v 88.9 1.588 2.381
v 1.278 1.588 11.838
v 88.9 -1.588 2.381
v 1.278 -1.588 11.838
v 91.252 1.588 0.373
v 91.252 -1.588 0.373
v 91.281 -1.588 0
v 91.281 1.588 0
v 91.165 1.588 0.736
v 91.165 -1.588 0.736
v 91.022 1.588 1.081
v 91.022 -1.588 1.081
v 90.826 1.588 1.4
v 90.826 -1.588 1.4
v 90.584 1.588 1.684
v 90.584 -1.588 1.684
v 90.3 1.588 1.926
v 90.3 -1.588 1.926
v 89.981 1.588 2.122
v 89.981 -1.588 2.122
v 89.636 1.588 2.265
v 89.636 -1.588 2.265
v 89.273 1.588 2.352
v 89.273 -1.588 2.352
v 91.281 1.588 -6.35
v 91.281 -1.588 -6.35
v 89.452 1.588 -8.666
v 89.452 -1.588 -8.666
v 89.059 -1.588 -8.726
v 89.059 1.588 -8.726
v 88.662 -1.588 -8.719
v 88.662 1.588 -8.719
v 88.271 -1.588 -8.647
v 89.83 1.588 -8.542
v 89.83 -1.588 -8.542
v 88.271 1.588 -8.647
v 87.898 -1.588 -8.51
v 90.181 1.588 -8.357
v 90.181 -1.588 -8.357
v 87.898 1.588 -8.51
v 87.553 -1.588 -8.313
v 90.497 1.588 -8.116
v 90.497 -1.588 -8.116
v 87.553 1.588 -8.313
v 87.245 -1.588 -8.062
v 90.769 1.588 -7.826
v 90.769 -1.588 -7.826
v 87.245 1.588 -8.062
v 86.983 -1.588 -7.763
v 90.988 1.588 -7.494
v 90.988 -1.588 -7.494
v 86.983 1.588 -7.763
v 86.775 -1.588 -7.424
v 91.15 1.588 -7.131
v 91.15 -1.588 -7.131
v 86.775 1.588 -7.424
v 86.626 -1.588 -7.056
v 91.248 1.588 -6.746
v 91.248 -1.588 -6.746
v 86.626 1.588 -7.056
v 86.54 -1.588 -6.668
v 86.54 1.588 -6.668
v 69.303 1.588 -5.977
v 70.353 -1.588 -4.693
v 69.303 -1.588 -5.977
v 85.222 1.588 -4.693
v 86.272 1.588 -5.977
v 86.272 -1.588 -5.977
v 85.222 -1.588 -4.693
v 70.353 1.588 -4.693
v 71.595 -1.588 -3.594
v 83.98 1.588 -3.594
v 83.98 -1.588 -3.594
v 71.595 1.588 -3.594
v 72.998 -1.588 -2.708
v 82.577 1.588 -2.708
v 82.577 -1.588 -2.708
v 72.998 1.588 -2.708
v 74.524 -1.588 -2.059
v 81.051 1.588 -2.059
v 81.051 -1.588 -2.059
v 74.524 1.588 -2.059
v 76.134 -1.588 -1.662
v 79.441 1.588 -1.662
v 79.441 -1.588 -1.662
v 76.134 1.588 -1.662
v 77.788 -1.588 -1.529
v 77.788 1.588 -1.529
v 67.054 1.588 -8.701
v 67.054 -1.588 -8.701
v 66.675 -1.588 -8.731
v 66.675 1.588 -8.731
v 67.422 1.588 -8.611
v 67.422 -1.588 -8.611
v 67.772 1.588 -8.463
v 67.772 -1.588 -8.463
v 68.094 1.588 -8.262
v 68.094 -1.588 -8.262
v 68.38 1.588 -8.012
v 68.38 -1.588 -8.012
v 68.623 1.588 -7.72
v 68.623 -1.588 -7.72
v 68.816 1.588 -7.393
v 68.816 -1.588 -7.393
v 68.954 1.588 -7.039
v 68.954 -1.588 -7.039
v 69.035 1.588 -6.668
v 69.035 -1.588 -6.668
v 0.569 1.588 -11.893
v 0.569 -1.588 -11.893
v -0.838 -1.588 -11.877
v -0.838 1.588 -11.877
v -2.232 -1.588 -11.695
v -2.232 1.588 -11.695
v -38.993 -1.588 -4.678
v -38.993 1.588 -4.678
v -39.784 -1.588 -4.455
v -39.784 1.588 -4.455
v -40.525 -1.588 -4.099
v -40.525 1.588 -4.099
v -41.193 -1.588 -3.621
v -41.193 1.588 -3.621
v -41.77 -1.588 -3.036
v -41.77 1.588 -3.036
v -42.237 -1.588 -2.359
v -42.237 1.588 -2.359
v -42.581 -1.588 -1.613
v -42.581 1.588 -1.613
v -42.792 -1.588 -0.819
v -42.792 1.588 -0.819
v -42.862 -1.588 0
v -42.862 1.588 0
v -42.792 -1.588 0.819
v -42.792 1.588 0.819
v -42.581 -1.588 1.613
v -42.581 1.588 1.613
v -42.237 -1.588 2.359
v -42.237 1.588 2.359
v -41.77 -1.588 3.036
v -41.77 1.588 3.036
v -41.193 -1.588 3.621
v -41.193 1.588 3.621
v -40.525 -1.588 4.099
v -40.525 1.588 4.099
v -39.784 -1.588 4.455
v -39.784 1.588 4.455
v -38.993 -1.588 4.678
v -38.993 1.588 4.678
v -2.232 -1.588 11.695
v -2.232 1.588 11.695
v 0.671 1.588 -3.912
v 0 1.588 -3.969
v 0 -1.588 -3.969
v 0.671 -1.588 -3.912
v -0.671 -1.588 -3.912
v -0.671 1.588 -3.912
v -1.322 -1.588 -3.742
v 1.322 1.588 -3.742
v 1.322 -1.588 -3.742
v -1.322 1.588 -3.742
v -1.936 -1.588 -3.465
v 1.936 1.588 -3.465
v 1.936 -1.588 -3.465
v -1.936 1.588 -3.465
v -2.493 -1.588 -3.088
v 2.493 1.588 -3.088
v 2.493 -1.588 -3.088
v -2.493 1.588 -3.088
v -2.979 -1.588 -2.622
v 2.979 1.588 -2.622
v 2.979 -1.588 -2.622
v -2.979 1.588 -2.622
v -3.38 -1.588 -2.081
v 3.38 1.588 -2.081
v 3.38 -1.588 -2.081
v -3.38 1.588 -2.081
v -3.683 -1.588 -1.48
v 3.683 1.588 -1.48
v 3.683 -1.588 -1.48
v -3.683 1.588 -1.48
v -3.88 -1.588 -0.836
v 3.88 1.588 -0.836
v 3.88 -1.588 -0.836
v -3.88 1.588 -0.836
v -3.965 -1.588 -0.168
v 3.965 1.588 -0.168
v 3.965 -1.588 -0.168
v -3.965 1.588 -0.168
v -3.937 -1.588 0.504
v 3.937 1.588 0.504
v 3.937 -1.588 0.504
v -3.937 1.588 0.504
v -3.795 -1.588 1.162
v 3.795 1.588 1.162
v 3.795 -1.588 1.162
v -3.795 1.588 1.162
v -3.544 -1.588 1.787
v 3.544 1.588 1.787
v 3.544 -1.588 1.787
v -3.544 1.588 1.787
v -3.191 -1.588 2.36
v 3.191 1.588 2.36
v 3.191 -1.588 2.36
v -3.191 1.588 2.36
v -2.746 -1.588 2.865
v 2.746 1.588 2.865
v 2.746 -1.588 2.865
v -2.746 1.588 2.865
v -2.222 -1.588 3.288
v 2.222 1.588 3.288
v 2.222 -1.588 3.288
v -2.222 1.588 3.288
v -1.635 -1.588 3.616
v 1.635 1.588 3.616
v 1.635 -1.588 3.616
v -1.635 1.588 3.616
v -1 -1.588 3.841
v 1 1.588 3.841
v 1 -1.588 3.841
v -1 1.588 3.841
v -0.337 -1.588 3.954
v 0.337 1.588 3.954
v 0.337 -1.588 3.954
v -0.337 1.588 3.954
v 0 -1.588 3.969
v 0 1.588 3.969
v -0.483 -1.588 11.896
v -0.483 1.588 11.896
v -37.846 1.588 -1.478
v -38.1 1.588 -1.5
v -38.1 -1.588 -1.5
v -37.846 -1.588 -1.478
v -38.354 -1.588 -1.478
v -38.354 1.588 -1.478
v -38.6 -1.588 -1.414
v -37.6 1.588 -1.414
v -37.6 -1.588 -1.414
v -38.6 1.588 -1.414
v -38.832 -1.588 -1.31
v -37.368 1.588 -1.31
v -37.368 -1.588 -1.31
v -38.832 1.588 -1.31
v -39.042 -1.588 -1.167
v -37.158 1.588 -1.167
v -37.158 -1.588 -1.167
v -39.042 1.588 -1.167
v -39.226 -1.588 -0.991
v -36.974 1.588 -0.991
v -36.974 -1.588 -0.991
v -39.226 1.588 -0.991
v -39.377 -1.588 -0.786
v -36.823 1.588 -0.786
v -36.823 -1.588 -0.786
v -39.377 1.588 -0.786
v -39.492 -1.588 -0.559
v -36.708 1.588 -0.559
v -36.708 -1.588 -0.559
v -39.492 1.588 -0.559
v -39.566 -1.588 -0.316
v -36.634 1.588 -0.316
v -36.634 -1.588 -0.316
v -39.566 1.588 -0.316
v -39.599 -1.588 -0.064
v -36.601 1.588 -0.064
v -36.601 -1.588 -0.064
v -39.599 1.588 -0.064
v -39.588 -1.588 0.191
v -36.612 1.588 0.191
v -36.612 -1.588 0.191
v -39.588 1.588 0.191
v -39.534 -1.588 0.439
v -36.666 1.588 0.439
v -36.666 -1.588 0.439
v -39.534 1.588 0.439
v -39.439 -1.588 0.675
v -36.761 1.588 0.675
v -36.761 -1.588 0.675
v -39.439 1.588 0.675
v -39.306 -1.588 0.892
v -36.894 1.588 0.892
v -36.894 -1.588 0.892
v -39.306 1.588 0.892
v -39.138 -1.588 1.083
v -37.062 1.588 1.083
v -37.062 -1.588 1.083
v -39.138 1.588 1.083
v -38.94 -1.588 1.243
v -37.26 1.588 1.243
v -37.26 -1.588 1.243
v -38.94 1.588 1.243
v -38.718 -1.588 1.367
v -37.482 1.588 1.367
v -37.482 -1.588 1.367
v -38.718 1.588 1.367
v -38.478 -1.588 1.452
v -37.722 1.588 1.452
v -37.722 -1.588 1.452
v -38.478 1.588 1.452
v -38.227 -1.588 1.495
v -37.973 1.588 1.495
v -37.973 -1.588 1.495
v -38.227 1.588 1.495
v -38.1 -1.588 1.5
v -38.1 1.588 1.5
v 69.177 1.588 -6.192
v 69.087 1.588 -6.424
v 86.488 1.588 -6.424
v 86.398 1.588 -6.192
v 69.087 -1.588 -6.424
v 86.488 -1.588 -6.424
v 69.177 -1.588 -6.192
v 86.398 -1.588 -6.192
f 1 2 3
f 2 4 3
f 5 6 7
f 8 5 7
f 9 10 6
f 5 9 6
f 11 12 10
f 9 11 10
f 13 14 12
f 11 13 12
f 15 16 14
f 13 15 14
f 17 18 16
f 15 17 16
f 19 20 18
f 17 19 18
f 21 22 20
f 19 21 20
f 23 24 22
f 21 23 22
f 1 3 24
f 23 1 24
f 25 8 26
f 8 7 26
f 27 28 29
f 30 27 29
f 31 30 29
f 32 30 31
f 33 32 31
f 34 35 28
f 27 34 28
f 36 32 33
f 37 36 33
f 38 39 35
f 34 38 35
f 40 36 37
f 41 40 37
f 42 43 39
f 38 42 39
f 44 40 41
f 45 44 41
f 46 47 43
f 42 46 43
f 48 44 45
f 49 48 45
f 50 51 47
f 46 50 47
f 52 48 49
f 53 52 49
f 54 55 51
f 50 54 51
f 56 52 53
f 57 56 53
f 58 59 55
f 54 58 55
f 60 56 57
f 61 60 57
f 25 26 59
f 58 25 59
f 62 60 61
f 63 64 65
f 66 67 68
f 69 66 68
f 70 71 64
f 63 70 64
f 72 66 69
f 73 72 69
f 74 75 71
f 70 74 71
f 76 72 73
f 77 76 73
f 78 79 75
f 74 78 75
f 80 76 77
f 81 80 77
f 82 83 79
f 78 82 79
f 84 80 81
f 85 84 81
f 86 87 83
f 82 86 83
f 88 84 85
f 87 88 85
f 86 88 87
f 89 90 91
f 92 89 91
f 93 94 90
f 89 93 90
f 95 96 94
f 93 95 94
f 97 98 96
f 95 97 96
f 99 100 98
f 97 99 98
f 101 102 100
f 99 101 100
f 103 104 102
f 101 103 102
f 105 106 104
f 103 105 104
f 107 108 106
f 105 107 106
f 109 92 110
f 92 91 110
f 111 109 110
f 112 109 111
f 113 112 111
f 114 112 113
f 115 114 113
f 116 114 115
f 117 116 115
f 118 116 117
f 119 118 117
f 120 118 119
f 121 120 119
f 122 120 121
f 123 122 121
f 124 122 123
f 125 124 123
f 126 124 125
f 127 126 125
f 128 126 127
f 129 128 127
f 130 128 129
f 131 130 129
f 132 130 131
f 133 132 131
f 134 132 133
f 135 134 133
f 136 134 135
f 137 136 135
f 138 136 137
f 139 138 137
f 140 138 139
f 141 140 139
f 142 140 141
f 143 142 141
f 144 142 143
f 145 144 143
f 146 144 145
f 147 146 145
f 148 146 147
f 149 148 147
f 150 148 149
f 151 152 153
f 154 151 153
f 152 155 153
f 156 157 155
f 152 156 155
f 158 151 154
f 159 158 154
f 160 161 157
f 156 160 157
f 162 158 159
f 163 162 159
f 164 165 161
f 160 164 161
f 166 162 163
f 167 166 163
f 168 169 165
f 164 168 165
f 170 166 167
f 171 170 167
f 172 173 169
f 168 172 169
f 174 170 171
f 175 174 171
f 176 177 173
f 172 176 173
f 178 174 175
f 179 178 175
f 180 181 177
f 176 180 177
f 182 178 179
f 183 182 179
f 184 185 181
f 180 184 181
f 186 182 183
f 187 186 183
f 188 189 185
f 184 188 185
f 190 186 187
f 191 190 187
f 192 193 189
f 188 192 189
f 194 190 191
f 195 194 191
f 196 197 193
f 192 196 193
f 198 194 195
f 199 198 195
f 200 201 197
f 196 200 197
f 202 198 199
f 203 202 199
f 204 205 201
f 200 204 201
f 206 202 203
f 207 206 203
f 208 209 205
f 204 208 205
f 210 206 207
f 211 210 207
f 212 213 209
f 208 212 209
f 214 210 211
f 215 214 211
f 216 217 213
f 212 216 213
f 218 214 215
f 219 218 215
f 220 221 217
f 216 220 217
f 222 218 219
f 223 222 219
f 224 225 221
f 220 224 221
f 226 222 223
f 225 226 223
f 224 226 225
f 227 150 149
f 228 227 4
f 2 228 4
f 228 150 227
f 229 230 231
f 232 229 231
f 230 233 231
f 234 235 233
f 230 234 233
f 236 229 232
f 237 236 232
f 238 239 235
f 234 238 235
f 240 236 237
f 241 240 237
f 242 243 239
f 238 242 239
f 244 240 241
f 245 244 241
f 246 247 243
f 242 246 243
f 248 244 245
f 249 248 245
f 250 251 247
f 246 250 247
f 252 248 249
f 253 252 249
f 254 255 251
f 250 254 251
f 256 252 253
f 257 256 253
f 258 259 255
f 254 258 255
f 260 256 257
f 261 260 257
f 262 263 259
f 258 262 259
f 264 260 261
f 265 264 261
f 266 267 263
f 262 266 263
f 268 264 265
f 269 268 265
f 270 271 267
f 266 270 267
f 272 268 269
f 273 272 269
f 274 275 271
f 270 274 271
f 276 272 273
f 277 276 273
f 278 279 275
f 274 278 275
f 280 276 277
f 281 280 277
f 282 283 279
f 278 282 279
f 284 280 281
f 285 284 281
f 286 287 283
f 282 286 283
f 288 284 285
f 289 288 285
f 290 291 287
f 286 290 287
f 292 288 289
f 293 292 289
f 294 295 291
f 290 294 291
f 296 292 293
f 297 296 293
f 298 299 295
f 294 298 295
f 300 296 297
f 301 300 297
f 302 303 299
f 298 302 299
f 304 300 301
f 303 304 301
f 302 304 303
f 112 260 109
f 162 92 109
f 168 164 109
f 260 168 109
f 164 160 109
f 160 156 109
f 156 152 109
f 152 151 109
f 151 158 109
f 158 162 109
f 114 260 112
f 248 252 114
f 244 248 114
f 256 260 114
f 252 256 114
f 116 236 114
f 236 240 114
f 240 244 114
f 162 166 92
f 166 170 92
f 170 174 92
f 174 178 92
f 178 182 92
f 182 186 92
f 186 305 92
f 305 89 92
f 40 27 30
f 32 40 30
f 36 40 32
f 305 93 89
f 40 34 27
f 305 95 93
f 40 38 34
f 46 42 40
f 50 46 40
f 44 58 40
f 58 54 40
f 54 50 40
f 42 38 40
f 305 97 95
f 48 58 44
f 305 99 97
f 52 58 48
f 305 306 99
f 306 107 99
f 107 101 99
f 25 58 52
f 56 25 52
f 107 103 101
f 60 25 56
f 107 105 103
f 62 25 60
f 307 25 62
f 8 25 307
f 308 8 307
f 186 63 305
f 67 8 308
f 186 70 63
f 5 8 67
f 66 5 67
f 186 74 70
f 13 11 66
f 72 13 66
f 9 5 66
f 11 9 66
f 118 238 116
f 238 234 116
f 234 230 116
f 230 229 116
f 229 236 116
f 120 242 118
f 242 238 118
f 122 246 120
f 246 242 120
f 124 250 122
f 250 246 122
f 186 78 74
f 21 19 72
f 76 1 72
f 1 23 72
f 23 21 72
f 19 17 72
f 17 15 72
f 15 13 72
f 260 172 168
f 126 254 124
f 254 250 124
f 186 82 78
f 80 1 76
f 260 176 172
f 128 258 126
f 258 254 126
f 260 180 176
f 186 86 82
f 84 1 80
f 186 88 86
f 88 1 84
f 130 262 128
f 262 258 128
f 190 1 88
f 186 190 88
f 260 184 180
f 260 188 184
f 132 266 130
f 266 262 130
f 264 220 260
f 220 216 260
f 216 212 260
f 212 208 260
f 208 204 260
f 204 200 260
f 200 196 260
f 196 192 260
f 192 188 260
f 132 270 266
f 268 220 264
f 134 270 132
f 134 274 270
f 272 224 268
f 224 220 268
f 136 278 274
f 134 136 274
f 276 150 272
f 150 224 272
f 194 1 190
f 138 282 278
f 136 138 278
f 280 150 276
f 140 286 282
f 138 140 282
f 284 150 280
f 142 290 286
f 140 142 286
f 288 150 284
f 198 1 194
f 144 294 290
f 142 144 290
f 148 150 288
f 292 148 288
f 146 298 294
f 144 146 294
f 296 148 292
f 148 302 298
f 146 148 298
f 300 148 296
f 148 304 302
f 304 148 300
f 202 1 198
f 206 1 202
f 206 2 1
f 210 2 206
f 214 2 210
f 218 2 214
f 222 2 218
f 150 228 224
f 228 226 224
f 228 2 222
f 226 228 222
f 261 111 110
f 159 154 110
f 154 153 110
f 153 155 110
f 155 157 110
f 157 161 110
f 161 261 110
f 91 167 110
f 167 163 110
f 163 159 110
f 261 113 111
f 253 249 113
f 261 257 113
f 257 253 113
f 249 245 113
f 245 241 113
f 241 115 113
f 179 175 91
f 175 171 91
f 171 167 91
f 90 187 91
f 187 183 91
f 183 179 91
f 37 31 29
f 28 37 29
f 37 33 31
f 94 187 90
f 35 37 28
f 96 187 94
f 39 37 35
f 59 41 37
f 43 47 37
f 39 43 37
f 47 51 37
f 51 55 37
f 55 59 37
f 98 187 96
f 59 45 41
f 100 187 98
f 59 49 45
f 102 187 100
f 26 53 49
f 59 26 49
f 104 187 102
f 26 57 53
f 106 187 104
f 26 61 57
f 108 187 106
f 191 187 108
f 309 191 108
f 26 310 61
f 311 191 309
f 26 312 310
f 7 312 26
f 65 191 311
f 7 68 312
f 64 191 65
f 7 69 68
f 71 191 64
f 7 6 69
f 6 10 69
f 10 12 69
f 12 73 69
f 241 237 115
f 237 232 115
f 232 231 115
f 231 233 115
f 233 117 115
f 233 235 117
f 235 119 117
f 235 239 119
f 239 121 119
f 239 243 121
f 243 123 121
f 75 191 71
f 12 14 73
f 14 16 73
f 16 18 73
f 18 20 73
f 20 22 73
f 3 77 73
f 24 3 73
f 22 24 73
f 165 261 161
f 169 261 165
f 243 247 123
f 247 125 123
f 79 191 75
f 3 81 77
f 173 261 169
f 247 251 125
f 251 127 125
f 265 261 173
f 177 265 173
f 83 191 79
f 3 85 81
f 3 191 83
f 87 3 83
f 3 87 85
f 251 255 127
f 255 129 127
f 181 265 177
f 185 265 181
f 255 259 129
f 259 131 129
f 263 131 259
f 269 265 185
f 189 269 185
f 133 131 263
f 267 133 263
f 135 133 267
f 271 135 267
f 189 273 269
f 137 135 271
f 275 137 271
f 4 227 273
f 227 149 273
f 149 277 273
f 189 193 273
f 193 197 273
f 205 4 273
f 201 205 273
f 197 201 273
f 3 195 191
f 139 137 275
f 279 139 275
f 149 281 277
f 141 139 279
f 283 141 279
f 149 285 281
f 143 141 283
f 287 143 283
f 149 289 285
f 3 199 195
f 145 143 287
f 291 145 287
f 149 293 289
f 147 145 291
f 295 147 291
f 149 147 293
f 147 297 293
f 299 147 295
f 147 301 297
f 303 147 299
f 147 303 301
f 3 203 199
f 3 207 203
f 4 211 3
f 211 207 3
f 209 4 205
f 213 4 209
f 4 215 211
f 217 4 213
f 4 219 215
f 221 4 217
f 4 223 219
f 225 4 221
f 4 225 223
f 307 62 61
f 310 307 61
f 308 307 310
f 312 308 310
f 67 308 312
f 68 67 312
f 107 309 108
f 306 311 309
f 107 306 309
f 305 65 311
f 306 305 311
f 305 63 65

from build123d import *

# Parameters (mm, degrees)
SKETCH1_R           = 1.5
SKETCH1_R_2         = 3.96875
BOSS_EXTRUDE1_DEPTH = 1.5875
FILLET1_R           = 1.5875


with BuildPart() as part:
    # Sketch1 → Boss-Extrude1 (new, symmetric)
    # profile 1 of 3: a face of its own
    with BuildSketch(Plane(origin=(0, 0, 0), x_dir=(1, 0, 0), z_dir=(0, 1, 0))):
        with BuildLine():
            Line((-2.232421875, 11.695087928), (-38.99296875, 4.678035171))
            ThreePointArc((-38.99296875, 4.678035171), (-42.8625, 0), (-38.99296875, -4.678035171))
            Line((-38.99296875, -4.678035171), (-2.232421875, -11.695087928))
            ThreePointArc((-2.232421875, -11.695087928), (-0.48273715, -11.896459722), (1.277510766, -11.837514744))
            Line((1.277510766, -11.837514744), (88.9, -2.38125))
            ThreePointArc((88.9, -2.38125), (87.216201977, -1.683798023), (86.51875, 0))
            Line((86.51875, 0), (86.51875, 6.35))
            ThreePointArc((86.51875, 6.35), (77.7875, 1.528980536), (69.05625, 6.35))
            Line((69.05625, 6.35), (69.05625, 0))
            ThreePointArc((69.05625, 0), (66.675, -2.38125), (64.29375, 0))
            Line((64.29375, 0), (64.29375, 6.35))
            ThreePointArc((64.29375, 6.35), (64.991201977, 8.033798023), (66.675, 8.73125))
            Line((66.675, 8.73125), (0.568744164, 11.892658203))
            ThreePointArc((0.568744164, 11.892658203), (-0.837683941, 11.876745121), (-2.232421875, 11.695087928))
        make_face()
        with Locations(Location((-38.1, 0, 0), (0, 0, 270))):
            Circle(SKETCH1_R, mode=Mode.SUBTRACT)
        with Locations(Location((0, 0, 0), (0, 0, 270))):
            Circle(SKETCH1_R_2, mode=Mode.SUBTRACT)
    # profile 2 of 3: a face of its own
    with BuildSketch(Plane(origin=(0, 0, 0), x_dir=(1, 0, 0), z_dir=(0, 1, 0))):
        with BuildLine():
            ThreePointArc((69.05625, 6.35), (68.358798023, 8.033798023), (66.675, 8.73125))
            ThreePointArc((66.675, 8.73125), (64.991201977, 8.033798023), (64.29375, 6.35))
            Line((64.29375, 6.35), (64.29375, 0))
            ThreePointArc((64.29375, 0), (66.675, -2.38125), (69.05625, 0))
            Line((69.05625, 0), (69.05625, 6.35))
        make_face()
    # profile 3 of 3: a face of its own
    with BuildSketch(Plane(origin=(0, 0, 0), x_dir=(1, 0, 0), z_dir=(0, 1, 0))):
        with BuildLine():
            ThreePointArc((86.51875, 0), (87.216201977, -1.683798023), (88.9, -2.38125))
            ThreePointArc((88.9, -2.38125), (90.583798023, -1.683798023), (91.28125, 0))
            Line((91.28125, 0), (91.28125, 6.35))
            ThreePointArc((91.28125, 6.35), (88.9, 8.73125), (86.51875, 6.35))
            Line((86.51875, 6.35), (86.51875, 0))
        make_face()
    extrude(amount=BOSS_EXTRUDE1_DEPTH, both=True)

    # Fillet1
    fillet1_edges = [part.edges().sort_by_distance(p)[0] for p in [
        (69.05625, 0, -6.35),
        (86.51875, 0, -6.35),
    ]]
    fillet(fillet1_edges, radius=FILLET1_R)


solid = part.part
